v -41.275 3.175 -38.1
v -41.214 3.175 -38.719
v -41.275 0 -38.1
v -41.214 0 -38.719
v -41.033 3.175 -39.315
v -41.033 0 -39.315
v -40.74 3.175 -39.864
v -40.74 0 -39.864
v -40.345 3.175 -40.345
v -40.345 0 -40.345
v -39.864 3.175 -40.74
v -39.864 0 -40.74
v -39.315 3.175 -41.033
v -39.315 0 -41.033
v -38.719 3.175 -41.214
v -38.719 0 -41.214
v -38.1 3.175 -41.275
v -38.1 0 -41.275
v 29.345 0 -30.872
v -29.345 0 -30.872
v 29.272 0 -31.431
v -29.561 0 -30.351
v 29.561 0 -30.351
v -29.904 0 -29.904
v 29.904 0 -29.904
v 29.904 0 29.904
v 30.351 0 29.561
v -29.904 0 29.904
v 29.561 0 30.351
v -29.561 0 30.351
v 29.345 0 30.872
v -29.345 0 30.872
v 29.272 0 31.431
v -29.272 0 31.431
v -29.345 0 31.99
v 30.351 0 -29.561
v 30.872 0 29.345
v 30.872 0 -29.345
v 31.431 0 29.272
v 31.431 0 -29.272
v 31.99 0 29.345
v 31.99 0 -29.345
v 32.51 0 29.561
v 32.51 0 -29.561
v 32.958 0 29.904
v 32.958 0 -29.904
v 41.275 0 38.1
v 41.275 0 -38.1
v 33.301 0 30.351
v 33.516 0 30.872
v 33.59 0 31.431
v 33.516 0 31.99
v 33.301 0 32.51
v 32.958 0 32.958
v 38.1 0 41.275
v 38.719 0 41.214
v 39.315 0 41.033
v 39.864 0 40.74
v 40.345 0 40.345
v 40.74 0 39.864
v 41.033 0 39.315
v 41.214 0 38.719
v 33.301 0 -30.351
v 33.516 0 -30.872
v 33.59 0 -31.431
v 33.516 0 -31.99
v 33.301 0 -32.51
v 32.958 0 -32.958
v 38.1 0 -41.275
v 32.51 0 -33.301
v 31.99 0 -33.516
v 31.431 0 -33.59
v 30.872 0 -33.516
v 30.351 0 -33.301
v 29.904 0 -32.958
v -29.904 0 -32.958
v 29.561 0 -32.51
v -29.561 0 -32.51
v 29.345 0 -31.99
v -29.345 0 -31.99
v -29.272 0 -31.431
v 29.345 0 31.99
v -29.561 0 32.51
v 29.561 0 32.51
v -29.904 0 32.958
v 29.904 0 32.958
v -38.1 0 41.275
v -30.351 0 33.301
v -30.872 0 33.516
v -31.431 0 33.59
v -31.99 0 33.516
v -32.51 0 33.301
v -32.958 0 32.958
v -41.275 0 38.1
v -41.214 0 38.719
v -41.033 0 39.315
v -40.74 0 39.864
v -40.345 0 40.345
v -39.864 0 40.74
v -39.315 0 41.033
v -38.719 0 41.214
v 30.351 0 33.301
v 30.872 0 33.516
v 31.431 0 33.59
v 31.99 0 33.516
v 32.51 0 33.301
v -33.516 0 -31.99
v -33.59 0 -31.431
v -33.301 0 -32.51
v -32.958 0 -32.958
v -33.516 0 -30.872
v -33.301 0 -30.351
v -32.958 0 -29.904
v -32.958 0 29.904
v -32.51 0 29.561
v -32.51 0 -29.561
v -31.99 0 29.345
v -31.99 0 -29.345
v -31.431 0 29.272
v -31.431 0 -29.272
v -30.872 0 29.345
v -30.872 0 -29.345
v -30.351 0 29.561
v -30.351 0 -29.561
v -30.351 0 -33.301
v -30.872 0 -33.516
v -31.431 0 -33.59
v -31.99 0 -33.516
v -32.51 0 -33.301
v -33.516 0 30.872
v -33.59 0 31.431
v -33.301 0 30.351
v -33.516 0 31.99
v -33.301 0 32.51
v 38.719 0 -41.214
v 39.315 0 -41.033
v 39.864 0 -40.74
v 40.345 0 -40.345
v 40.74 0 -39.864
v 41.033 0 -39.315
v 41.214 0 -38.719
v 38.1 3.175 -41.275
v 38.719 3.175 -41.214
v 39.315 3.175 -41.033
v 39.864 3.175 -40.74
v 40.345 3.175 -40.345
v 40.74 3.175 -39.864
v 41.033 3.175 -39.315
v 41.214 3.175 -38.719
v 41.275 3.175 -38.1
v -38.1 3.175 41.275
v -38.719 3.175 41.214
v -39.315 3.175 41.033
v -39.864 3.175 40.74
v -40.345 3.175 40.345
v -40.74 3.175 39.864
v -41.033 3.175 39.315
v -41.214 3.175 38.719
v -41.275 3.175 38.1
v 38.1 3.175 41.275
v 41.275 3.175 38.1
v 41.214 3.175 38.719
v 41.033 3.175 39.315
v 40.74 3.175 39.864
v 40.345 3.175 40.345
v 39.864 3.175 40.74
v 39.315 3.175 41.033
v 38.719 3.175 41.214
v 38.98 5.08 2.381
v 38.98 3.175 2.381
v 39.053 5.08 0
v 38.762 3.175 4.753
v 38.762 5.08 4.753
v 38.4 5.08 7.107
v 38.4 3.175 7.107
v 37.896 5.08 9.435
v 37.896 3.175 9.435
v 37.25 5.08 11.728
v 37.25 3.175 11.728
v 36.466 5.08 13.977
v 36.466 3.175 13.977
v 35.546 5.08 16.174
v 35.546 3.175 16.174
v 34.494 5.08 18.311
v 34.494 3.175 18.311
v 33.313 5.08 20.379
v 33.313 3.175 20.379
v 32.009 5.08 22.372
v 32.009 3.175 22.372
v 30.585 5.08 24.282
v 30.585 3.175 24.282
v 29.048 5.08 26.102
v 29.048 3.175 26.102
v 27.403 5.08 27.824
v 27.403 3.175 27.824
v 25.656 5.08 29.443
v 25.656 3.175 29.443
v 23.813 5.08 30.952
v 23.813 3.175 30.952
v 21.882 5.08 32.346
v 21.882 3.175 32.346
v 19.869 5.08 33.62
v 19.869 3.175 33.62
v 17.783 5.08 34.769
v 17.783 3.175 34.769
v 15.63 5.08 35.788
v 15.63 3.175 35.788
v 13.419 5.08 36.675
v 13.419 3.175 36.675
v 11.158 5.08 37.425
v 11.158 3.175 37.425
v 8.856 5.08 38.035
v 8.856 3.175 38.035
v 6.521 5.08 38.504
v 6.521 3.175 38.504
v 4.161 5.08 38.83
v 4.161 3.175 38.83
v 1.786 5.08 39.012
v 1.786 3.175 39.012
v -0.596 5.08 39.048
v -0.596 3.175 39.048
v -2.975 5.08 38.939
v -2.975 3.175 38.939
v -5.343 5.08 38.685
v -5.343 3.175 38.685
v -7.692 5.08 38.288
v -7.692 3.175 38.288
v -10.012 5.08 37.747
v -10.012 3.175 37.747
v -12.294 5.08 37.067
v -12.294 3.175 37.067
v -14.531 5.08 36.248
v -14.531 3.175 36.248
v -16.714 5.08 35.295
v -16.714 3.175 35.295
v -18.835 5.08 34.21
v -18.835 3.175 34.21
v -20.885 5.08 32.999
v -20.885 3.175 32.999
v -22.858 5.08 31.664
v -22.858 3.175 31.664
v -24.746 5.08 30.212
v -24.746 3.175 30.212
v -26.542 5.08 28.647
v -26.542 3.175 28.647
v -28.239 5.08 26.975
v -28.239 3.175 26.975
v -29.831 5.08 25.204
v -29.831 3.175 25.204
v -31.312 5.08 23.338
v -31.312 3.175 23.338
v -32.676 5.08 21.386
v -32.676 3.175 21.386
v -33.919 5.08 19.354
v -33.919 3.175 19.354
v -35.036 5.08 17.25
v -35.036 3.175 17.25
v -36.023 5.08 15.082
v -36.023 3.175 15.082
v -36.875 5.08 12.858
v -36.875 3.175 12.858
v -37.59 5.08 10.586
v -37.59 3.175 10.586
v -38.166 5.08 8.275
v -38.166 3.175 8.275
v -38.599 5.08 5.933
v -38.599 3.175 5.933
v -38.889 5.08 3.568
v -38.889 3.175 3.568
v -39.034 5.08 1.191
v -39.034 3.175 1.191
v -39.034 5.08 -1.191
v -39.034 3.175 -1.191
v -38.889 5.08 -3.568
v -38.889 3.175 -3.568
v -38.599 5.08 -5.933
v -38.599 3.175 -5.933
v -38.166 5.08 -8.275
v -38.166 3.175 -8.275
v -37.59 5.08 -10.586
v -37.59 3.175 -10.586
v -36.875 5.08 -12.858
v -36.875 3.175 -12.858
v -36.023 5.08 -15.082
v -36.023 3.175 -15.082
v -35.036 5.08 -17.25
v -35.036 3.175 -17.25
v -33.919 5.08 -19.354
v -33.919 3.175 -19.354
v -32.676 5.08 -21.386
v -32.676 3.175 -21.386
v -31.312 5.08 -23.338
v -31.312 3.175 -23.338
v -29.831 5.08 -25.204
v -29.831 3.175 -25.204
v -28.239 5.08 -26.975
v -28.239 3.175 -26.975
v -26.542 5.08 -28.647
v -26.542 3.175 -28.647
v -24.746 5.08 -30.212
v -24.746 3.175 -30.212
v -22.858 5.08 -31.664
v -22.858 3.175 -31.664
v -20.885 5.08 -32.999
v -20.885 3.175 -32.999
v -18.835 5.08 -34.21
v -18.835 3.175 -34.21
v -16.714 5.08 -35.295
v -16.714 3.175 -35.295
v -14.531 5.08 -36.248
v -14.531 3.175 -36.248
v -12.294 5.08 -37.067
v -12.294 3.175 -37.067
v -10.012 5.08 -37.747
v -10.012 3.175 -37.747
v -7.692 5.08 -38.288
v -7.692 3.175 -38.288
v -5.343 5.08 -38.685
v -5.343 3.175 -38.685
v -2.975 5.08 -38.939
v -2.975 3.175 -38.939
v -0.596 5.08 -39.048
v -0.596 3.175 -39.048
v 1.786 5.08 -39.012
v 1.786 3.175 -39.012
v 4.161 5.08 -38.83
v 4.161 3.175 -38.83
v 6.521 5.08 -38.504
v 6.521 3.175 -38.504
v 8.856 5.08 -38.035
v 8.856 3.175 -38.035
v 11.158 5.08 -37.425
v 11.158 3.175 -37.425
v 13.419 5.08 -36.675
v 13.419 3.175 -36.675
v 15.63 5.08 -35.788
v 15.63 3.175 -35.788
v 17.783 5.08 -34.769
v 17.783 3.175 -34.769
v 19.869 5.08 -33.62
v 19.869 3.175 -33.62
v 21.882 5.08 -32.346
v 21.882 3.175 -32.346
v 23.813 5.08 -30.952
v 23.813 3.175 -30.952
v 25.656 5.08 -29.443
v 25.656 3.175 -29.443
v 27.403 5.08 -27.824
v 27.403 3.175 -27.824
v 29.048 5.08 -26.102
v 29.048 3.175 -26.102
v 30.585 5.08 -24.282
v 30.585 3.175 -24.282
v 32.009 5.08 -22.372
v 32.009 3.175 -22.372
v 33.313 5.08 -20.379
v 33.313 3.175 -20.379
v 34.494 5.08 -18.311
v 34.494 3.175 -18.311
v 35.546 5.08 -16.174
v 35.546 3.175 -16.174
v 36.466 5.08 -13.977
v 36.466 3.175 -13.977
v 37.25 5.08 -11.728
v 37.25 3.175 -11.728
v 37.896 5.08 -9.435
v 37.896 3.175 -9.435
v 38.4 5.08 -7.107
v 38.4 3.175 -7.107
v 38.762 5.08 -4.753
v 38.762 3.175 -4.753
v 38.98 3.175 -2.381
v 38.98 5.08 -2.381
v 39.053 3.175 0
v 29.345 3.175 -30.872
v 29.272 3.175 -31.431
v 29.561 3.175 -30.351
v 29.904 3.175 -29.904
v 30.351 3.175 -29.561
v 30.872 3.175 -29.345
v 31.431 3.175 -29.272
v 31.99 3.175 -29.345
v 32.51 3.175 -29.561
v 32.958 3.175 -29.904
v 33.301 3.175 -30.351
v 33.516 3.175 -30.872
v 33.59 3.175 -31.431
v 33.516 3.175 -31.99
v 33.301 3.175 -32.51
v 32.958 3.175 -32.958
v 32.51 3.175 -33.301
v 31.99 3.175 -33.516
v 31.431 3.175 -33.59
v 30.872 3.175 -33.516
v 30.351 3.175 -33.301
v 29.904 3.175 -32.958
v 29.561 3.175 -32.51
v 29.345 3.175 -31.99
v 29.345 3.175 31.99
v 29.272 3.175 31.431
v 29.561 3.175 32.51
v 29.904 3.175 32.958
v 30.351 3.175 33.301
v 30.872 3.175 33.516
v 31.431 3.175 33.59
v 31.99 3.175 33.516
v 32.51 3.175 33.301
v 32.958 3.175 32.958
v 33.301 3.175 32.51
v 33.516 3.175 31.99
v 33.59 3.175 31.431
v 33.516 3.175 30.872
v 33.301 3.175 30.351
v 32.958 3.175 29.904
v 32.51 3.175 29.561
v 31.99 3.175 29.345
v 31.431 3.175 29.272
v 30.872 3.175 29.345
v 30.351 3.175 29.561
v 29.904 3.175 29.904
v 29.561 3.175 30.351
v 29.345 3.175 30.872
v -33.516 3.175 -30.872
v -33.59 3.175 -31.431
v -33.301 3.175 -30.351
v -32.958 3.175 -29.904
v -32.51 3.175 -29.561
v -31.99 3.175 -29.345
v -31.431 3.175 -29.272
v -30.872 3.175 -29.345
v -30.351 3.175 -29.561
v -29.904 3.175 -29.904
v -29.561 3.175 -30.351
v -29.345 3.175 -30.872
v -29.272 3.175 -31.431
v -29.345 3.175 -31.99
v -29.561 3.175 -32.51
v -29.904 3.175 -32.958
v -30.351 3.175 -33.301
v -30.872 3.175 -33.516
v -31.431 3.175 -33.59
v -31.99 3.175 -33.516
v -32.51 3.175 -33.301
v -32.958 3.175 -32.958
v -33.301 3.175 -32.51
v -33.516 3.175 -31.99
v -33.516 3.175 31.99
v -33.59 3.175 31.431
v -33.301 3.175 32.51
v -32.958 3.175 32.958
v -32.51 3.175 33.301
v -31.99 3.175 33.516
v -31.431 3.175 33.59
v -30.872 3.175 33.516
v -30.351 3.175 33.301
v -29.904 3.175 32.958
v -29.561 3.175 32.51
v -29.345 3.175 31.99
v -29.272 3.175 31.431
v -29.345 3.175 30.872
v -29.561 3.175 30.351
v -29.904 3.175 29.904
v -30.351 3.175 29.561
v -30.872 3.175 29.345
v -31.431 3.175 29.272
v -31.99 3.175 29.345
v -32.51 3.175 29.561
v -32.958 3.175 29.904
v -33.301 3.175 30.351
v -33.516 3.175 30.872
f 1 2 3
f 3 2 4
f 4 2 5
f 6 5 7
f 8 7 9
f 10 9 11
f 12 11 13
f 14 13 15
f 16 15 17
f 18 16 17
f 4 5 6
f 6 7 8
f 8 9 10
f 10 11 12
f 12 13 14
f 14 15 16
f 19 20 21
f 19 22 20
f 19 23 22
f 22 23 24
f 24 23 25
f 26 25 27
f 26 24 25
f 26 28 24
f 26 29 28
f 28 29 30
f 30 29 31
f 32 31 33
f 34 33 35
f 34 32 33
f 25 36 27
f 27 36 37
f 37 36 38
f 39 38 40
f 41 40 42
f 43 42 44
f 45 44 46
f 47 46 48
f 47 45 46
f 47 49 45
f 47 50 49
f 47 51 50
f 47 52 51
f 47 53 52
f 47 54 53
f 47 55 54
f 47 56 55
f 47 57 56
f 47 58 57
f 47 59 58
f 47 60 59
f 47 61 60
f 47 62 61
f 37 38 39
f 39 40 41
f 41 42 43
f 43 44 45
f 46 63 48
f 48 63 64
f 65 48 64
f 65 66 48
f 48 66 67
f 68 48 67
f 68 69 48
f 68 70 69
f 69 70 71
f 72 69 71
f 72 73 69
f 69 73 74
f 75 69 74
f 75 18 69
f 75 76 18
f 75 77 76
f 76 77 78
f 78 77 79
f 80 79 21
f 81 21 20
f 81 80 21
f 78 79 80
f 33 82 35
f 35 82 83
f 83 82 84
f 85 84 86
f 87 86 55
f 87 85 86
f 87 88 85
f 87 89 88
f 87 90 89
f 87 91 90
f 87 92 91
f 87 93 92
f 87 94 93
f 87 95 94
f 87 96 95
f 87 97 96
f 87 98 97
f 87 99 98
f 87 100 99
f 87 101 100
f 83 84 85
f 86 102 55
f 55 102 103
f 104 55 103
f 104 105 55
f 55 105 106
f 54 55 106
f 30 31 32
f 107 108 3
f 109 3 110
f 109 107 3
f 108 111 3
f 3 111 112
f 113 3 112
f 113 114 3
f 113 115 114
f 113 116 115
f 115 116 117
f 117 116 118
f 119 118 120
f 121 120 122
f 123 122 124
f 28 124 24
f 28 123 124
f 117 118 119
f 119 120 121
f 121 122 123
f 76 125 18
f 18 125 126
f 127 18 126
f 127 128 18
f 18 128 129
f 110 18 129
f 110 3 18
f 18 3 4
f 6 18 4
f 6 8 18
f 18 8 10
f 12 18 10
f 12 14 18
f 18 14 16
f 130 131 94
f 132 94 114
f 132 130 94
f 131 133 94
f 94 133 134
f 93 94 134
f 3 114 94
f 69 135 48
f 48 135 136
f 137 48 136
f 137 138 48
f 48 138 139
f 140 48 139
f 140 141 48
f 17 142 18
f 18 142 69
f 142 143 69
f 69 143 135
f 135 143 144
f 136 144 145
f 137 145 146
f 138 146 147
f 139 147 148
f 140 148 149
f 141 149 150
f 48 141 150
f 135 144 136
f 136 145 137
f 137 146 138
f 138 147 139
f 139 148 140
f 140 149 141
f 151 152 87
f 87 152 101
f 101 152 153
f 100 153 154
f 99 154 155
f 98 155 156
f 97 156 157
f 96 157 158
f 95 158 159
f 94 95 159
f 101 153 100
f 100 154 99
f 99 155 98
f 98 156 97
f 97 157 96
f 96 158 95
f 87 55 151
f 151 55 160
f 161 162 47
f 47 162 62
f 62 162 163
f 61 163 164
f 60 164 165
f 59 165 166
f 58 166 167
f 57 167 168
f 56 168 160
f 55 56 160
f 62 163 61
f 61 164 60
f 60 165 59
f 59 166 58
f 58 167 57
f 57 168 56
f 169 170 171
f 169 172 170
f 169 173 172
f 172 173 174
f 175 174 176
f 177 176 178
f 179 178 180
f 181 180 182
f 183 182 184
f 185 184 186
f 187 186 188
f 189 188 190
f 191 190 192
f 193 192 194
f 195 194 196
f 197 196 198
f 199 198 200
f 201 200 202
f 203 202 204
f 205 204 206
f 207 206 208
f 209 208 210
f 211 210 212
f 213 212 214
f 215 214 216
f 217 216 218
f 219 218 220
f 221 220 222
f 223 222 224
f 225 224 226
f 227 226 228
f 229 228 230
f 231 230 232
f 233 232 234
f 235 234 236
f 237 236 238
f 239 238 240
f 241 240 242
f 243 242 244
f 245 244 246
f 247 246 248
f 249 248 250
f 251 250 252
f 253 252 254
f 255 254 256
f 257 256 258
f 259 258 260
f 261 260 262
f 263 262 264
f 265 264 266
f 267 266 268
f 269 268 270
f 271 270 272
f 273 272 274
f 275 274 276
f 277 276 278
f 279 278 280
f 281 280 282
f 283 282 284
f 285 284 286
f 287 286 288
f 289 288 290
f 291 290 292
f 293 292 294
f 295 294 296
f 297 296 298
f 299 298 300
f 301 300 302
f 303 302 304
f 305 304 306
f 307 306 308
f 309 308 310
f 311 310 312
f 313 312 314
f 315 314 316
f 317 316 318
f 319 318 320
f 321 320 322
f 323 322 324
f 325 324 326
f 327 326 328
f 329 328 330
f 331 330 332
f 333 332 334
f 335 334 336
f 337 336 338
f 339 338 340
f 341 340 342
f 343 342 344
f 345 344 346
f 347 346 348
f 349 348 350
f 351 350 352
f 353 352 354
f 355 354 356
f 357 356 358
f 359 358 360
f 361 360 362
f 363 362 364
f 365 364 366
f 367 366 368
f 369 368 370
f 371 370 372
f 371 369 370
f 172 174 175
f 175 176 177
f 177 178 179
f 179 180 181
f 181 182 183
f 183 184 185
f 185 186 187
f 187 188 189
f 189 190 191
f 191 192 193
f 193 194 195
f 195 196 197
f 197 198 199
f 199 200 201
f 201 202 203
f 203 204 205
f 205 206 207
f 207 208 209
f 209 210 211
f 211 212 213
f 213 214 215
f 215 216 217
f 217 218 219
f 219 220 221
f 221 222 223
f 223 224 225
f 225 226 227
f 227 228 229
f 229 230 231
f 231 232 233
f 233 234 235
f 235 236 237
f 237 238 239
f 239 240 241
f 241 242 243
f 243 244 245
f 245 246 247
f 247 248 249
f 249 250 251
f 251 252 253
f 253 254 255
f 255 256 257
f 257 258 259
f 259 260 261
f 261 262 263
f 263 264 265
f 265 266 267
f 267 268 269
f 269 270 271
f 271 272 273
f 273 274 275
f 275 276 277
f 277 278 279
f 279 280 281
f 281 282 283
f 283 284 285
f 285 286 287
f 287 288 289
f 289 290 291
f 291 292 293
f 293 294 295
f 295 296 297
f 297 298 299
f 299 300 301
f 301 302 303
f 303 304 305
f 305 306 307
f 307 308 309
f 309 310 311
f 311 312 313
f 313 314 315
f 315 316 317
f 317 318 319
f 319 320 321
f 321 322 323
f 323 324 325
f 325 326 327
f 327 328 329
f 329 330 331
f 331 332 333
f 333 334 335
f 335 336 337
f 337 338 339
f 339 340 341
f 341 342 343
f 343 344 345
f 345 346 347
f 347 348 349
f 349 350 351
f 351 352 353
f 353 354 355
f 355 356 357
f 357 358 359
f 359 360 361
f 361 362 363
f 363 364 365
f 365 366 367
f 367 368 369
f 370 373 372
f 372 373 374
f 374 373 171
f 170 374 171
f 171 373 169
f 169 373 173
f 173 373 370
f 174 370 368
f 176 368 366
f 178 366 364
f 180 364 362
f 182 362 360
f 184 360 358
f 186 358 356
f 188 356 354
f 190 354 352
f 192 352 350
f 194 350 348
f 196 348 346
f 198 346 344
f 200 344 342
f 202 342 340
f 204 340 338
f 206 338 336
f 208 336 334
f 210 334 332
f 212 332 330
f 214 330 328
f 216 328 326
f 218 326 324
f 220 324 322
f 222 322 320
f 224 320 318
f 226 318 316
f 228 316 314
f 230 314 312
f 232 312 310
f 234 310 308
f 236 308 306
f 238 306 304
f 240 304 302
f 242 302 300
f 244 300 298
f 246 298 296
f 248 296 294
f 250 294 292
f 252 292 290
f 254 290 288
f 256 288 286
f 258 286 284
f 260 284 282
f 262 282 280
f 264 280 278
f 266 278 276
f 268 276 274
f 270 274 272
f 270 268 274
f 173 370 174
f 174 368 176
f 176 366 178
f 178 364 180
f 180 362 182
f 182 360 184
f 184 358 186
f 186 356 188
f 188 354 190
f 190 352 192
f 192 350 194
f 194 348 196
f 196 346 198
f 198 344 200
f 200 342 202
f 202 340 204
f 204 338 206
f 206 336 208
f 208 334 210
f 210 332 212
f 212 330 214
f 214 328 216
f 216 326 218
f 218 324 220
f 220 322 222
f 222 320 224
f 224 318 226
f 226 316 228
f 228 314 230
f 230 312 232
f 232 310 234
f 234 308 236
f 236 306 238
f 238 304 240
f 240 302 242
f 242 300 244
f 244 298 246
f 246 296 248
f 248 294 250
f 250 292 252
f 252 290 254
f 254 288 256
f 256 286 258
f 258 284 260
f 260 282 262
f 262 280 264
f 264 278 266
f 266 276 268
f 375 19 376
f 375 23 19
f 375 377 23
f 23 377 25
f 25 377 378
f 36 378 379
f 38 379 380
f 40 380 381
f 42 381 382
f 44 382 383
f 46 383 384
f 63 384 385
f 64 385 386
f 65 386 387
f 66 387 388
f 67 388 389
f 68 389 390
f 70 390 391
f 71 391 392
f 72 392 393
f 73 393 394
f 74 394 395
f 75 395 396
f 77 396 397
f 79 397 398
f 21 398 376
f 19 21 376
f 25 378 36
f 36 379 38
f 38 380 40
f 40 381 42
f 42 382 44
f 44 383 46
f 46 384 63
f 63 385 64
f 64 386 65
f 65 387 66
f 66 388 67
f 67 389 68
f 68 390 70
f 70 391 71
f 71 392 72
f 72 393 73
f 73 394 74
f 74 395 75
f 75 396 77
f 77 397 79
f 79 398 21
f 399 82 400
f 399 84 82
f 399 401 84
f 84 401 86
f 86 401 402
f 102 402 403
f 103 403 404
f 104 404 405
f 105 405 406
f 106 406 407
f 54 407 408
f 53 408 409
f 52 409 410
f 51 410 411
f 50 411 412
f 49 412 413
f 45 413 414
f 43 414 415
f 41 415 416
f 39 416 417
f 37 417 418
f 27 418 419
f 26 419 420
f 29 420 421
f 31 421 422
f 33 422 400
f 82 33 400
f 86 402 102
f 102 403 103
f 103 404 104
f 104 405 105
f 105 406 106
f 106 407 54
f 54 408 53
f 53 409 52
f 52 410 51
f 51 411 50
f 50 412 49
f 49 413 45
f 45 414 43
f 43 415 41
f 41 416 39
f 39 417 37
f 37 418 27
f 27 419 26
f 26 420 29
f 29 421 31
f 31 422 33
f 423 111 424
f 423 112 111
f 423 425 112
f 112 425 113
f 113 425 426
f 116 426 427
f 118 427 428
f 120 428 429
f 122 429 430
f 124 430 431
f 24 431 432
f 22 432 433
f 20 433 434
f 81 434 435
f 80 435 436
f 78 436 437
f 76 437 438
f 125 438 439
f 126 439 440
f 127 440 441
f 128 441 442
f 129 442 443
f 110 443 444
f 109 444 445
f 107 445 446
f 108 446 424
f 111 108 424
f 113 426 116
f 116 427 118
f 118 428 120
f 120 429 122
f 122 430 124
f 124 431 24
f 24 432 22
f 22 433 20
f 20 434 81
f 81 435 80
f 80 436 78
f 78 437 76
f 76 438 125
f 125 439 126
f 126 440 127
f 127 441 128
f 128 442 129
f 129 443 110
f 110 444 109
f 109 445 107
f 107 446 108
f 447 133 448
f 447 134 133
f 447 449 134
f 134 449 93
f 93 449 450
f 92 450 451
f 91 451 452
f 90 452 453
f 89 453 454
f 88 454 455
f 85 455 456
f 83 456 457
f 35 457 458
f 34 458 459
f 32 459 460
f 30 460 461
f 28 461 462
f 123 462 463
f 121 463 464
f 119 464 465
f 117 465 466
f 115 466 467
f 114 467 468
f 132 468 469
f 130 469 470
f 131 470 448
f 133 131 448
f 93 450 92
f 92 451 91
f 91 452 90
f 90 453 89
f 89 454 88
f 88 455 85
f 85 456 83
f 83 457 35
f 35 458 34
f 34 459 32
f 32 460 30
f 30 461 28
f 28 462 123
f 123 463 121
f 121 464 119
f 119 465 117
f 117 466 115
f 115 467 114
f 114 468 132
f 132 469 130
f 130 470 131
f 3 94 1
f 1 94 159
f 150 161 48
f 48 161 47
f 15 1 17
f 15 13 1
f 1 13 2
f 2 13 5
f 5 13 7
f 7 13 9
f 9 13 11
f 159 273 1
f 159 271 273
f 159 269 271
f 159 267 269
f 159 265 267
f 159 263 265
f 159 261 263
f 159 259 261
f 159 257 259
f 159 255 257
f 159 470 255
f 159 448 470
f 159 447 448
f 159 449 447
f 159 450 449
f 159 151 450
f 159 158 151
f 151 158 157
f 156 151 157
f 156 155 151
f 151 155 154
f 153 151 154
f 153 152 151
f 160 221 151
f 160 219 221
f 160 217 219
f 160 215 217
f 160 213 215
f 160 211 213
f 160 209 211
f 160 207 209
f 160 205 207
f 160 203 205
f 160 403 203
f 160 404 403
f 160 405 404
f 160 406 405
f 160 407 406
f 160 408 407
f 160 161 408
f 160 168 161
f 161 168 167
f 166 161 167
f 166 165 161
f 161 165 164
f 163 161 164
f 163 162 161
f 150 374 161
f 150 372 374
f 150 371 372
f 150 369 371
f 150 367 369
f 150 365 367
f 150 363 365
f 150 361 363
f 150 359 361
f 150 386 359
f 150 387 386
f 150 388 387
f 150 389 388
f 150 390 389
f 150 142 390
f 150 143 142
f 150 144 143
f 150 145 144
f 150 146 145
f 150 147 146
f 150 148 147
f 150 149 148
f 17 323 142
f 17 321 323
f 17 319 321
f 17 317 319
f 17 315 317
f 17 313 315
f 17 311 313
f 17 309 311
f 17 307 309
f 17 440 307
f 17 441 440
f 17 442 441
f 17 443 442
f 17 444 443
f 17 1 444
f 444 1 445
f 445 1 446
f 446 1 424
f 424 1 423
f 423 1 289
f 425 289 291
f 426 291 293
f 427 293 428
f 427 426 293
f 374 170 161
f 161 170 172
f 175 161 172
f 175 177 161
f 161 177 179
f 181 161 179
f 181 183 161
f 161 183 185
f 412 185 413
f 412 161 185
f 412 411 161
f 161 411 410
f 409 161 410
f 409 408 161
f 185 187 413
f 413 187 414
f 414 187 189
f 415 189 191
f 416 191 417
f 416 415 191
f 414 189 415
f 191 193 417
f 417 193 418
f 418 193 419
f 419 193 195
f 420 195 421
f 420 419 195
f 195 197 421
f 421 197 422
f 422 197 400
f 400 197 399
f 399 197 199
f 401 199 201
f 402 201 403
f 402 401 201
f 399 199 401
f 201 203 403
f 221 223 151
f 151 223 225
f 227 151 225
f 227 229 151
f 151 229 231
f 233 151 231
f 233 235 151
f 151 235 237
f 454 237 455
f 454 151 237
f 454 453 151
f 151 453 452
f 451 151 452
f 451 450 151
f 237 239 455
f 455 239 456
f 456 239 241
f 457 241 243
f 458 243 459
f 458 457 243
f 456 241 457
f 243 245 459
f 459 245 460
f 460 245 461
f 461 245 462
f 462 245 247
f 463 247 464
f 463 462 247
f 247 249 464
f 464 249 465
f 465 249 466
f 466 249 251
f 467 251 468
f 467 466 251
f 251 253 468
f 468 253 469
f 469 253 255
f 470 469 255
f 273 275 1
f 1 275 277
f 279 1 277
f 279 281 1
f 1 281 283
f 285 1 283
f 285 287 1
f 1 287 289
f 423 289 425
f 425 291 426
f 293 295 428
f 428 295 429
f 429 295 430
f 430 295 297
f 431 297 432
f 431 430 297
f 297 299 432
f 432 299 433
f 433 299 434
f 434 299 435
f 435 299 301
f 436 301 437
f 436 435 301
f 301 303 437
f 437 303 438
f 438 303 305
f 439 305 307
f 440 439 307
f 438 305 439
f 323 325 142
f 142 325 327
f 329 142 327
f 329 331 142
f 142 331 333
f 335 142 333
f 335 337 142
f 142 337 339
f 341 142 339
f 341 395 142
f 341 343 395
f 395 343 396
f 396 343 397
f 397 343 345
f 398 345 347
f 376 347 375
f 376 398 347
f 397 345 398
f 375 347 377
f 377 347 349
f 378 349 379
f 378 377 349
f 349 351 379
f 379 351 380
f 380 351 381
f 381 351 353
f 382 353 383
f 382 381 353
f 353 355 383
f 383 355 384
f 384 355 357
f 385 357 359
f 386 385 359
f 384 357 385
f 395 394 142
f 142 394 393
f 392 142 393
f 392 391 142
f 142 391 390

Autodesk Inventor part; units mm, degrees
ref_plane "YZ Plane" through (0, 0, 0) normal (1, 0, 0) x (0, 1, 0)
ref_plane "XZ Plane" through (0, 0, 0) normal (0, 1, 0) x (-1, 0, 0)
ref_plane "XY Plane" through (0, 0, 0) normal (0, 0, 1) x (1, 0, 0)
sketch "Sketch1" plane through (0, 0, 0) normal (0, 1, 0) x (-1, 0, 0)
  line L0 (41.275, 41.275) -> (-41.275, 41.275)
  line L1 (-41.275, 41.275) -> (-41.275, -41.275)
  line L2 (-41.275, -41.275) -> (41.275, -41.275)
  line L3 (41.275, -41.275) -> (41.275, 41.275)
  circle A0 centre (0, 0) radius 44.45 construction
  circle A1 centre (0, 0) radius 39.6875
  line L4 (-41.275, 41.275) -> (41.275, -41.275) construction
  line L5 (41.275, 41.275) -> (-41.275, -41.275) construction
  circle A2 centre (31.4309, 31.4309) radius 2.159
  circle A3 centre (31.4309, -31.4309) radius 2.159
  circle A4 centre (-31.4309, 31.4309) radius 2.159
  circle A5 centre (-31.4309, -31.4309) radius 2.159
  point P0 (0, 0)
  point P1 (0, 0)
  point P2 (0, 0)
  dimension "d0" = 82.55
  dimension "d1" = 82.55
  dimension "d2" = 88.9
  dimension "d3" = 79.375
  dimension "d4" = 4.318
  dimension "d5" = 4.318
  dimension "d6" = 4.318
  dimension "d7" = 4.318
extrude "Extrusion1" add sketch "Sketch1" along normal blind 3.175 contours L3 L2 L1 L0 | A1
sketch "Sketch2" plane through (0, 3.175, 0) normal (0, 1, 0) x (1, 0, 0)
  circle A0 centre (0, 0) radius 39.0525
  circle A1 centre (0, 0) radius 39.6875 construction
  point P0 (0, 0)
  dimension "d10" = 78.105
  dimension "d17" = 79.375
extrude "Extrusion2" add sketch "Sketch2" along normal blind 1.905
fillet "Fillet1" radius 3.175 1 edges at (41.275, 1.5875, 41.275)
fillet "Fillet2" radius 3.175 1 edges at (-41.275, 1.5875, 41.275)
fillet "Fillet3" radius 3.175 1 edges at (41.275, 1.5875, -41.275)
fillet "Fillet4" radius 3.175 1 edges at (-41.275, 1.5875, -41.275)
properties part number "3-125-instrument-blank"
